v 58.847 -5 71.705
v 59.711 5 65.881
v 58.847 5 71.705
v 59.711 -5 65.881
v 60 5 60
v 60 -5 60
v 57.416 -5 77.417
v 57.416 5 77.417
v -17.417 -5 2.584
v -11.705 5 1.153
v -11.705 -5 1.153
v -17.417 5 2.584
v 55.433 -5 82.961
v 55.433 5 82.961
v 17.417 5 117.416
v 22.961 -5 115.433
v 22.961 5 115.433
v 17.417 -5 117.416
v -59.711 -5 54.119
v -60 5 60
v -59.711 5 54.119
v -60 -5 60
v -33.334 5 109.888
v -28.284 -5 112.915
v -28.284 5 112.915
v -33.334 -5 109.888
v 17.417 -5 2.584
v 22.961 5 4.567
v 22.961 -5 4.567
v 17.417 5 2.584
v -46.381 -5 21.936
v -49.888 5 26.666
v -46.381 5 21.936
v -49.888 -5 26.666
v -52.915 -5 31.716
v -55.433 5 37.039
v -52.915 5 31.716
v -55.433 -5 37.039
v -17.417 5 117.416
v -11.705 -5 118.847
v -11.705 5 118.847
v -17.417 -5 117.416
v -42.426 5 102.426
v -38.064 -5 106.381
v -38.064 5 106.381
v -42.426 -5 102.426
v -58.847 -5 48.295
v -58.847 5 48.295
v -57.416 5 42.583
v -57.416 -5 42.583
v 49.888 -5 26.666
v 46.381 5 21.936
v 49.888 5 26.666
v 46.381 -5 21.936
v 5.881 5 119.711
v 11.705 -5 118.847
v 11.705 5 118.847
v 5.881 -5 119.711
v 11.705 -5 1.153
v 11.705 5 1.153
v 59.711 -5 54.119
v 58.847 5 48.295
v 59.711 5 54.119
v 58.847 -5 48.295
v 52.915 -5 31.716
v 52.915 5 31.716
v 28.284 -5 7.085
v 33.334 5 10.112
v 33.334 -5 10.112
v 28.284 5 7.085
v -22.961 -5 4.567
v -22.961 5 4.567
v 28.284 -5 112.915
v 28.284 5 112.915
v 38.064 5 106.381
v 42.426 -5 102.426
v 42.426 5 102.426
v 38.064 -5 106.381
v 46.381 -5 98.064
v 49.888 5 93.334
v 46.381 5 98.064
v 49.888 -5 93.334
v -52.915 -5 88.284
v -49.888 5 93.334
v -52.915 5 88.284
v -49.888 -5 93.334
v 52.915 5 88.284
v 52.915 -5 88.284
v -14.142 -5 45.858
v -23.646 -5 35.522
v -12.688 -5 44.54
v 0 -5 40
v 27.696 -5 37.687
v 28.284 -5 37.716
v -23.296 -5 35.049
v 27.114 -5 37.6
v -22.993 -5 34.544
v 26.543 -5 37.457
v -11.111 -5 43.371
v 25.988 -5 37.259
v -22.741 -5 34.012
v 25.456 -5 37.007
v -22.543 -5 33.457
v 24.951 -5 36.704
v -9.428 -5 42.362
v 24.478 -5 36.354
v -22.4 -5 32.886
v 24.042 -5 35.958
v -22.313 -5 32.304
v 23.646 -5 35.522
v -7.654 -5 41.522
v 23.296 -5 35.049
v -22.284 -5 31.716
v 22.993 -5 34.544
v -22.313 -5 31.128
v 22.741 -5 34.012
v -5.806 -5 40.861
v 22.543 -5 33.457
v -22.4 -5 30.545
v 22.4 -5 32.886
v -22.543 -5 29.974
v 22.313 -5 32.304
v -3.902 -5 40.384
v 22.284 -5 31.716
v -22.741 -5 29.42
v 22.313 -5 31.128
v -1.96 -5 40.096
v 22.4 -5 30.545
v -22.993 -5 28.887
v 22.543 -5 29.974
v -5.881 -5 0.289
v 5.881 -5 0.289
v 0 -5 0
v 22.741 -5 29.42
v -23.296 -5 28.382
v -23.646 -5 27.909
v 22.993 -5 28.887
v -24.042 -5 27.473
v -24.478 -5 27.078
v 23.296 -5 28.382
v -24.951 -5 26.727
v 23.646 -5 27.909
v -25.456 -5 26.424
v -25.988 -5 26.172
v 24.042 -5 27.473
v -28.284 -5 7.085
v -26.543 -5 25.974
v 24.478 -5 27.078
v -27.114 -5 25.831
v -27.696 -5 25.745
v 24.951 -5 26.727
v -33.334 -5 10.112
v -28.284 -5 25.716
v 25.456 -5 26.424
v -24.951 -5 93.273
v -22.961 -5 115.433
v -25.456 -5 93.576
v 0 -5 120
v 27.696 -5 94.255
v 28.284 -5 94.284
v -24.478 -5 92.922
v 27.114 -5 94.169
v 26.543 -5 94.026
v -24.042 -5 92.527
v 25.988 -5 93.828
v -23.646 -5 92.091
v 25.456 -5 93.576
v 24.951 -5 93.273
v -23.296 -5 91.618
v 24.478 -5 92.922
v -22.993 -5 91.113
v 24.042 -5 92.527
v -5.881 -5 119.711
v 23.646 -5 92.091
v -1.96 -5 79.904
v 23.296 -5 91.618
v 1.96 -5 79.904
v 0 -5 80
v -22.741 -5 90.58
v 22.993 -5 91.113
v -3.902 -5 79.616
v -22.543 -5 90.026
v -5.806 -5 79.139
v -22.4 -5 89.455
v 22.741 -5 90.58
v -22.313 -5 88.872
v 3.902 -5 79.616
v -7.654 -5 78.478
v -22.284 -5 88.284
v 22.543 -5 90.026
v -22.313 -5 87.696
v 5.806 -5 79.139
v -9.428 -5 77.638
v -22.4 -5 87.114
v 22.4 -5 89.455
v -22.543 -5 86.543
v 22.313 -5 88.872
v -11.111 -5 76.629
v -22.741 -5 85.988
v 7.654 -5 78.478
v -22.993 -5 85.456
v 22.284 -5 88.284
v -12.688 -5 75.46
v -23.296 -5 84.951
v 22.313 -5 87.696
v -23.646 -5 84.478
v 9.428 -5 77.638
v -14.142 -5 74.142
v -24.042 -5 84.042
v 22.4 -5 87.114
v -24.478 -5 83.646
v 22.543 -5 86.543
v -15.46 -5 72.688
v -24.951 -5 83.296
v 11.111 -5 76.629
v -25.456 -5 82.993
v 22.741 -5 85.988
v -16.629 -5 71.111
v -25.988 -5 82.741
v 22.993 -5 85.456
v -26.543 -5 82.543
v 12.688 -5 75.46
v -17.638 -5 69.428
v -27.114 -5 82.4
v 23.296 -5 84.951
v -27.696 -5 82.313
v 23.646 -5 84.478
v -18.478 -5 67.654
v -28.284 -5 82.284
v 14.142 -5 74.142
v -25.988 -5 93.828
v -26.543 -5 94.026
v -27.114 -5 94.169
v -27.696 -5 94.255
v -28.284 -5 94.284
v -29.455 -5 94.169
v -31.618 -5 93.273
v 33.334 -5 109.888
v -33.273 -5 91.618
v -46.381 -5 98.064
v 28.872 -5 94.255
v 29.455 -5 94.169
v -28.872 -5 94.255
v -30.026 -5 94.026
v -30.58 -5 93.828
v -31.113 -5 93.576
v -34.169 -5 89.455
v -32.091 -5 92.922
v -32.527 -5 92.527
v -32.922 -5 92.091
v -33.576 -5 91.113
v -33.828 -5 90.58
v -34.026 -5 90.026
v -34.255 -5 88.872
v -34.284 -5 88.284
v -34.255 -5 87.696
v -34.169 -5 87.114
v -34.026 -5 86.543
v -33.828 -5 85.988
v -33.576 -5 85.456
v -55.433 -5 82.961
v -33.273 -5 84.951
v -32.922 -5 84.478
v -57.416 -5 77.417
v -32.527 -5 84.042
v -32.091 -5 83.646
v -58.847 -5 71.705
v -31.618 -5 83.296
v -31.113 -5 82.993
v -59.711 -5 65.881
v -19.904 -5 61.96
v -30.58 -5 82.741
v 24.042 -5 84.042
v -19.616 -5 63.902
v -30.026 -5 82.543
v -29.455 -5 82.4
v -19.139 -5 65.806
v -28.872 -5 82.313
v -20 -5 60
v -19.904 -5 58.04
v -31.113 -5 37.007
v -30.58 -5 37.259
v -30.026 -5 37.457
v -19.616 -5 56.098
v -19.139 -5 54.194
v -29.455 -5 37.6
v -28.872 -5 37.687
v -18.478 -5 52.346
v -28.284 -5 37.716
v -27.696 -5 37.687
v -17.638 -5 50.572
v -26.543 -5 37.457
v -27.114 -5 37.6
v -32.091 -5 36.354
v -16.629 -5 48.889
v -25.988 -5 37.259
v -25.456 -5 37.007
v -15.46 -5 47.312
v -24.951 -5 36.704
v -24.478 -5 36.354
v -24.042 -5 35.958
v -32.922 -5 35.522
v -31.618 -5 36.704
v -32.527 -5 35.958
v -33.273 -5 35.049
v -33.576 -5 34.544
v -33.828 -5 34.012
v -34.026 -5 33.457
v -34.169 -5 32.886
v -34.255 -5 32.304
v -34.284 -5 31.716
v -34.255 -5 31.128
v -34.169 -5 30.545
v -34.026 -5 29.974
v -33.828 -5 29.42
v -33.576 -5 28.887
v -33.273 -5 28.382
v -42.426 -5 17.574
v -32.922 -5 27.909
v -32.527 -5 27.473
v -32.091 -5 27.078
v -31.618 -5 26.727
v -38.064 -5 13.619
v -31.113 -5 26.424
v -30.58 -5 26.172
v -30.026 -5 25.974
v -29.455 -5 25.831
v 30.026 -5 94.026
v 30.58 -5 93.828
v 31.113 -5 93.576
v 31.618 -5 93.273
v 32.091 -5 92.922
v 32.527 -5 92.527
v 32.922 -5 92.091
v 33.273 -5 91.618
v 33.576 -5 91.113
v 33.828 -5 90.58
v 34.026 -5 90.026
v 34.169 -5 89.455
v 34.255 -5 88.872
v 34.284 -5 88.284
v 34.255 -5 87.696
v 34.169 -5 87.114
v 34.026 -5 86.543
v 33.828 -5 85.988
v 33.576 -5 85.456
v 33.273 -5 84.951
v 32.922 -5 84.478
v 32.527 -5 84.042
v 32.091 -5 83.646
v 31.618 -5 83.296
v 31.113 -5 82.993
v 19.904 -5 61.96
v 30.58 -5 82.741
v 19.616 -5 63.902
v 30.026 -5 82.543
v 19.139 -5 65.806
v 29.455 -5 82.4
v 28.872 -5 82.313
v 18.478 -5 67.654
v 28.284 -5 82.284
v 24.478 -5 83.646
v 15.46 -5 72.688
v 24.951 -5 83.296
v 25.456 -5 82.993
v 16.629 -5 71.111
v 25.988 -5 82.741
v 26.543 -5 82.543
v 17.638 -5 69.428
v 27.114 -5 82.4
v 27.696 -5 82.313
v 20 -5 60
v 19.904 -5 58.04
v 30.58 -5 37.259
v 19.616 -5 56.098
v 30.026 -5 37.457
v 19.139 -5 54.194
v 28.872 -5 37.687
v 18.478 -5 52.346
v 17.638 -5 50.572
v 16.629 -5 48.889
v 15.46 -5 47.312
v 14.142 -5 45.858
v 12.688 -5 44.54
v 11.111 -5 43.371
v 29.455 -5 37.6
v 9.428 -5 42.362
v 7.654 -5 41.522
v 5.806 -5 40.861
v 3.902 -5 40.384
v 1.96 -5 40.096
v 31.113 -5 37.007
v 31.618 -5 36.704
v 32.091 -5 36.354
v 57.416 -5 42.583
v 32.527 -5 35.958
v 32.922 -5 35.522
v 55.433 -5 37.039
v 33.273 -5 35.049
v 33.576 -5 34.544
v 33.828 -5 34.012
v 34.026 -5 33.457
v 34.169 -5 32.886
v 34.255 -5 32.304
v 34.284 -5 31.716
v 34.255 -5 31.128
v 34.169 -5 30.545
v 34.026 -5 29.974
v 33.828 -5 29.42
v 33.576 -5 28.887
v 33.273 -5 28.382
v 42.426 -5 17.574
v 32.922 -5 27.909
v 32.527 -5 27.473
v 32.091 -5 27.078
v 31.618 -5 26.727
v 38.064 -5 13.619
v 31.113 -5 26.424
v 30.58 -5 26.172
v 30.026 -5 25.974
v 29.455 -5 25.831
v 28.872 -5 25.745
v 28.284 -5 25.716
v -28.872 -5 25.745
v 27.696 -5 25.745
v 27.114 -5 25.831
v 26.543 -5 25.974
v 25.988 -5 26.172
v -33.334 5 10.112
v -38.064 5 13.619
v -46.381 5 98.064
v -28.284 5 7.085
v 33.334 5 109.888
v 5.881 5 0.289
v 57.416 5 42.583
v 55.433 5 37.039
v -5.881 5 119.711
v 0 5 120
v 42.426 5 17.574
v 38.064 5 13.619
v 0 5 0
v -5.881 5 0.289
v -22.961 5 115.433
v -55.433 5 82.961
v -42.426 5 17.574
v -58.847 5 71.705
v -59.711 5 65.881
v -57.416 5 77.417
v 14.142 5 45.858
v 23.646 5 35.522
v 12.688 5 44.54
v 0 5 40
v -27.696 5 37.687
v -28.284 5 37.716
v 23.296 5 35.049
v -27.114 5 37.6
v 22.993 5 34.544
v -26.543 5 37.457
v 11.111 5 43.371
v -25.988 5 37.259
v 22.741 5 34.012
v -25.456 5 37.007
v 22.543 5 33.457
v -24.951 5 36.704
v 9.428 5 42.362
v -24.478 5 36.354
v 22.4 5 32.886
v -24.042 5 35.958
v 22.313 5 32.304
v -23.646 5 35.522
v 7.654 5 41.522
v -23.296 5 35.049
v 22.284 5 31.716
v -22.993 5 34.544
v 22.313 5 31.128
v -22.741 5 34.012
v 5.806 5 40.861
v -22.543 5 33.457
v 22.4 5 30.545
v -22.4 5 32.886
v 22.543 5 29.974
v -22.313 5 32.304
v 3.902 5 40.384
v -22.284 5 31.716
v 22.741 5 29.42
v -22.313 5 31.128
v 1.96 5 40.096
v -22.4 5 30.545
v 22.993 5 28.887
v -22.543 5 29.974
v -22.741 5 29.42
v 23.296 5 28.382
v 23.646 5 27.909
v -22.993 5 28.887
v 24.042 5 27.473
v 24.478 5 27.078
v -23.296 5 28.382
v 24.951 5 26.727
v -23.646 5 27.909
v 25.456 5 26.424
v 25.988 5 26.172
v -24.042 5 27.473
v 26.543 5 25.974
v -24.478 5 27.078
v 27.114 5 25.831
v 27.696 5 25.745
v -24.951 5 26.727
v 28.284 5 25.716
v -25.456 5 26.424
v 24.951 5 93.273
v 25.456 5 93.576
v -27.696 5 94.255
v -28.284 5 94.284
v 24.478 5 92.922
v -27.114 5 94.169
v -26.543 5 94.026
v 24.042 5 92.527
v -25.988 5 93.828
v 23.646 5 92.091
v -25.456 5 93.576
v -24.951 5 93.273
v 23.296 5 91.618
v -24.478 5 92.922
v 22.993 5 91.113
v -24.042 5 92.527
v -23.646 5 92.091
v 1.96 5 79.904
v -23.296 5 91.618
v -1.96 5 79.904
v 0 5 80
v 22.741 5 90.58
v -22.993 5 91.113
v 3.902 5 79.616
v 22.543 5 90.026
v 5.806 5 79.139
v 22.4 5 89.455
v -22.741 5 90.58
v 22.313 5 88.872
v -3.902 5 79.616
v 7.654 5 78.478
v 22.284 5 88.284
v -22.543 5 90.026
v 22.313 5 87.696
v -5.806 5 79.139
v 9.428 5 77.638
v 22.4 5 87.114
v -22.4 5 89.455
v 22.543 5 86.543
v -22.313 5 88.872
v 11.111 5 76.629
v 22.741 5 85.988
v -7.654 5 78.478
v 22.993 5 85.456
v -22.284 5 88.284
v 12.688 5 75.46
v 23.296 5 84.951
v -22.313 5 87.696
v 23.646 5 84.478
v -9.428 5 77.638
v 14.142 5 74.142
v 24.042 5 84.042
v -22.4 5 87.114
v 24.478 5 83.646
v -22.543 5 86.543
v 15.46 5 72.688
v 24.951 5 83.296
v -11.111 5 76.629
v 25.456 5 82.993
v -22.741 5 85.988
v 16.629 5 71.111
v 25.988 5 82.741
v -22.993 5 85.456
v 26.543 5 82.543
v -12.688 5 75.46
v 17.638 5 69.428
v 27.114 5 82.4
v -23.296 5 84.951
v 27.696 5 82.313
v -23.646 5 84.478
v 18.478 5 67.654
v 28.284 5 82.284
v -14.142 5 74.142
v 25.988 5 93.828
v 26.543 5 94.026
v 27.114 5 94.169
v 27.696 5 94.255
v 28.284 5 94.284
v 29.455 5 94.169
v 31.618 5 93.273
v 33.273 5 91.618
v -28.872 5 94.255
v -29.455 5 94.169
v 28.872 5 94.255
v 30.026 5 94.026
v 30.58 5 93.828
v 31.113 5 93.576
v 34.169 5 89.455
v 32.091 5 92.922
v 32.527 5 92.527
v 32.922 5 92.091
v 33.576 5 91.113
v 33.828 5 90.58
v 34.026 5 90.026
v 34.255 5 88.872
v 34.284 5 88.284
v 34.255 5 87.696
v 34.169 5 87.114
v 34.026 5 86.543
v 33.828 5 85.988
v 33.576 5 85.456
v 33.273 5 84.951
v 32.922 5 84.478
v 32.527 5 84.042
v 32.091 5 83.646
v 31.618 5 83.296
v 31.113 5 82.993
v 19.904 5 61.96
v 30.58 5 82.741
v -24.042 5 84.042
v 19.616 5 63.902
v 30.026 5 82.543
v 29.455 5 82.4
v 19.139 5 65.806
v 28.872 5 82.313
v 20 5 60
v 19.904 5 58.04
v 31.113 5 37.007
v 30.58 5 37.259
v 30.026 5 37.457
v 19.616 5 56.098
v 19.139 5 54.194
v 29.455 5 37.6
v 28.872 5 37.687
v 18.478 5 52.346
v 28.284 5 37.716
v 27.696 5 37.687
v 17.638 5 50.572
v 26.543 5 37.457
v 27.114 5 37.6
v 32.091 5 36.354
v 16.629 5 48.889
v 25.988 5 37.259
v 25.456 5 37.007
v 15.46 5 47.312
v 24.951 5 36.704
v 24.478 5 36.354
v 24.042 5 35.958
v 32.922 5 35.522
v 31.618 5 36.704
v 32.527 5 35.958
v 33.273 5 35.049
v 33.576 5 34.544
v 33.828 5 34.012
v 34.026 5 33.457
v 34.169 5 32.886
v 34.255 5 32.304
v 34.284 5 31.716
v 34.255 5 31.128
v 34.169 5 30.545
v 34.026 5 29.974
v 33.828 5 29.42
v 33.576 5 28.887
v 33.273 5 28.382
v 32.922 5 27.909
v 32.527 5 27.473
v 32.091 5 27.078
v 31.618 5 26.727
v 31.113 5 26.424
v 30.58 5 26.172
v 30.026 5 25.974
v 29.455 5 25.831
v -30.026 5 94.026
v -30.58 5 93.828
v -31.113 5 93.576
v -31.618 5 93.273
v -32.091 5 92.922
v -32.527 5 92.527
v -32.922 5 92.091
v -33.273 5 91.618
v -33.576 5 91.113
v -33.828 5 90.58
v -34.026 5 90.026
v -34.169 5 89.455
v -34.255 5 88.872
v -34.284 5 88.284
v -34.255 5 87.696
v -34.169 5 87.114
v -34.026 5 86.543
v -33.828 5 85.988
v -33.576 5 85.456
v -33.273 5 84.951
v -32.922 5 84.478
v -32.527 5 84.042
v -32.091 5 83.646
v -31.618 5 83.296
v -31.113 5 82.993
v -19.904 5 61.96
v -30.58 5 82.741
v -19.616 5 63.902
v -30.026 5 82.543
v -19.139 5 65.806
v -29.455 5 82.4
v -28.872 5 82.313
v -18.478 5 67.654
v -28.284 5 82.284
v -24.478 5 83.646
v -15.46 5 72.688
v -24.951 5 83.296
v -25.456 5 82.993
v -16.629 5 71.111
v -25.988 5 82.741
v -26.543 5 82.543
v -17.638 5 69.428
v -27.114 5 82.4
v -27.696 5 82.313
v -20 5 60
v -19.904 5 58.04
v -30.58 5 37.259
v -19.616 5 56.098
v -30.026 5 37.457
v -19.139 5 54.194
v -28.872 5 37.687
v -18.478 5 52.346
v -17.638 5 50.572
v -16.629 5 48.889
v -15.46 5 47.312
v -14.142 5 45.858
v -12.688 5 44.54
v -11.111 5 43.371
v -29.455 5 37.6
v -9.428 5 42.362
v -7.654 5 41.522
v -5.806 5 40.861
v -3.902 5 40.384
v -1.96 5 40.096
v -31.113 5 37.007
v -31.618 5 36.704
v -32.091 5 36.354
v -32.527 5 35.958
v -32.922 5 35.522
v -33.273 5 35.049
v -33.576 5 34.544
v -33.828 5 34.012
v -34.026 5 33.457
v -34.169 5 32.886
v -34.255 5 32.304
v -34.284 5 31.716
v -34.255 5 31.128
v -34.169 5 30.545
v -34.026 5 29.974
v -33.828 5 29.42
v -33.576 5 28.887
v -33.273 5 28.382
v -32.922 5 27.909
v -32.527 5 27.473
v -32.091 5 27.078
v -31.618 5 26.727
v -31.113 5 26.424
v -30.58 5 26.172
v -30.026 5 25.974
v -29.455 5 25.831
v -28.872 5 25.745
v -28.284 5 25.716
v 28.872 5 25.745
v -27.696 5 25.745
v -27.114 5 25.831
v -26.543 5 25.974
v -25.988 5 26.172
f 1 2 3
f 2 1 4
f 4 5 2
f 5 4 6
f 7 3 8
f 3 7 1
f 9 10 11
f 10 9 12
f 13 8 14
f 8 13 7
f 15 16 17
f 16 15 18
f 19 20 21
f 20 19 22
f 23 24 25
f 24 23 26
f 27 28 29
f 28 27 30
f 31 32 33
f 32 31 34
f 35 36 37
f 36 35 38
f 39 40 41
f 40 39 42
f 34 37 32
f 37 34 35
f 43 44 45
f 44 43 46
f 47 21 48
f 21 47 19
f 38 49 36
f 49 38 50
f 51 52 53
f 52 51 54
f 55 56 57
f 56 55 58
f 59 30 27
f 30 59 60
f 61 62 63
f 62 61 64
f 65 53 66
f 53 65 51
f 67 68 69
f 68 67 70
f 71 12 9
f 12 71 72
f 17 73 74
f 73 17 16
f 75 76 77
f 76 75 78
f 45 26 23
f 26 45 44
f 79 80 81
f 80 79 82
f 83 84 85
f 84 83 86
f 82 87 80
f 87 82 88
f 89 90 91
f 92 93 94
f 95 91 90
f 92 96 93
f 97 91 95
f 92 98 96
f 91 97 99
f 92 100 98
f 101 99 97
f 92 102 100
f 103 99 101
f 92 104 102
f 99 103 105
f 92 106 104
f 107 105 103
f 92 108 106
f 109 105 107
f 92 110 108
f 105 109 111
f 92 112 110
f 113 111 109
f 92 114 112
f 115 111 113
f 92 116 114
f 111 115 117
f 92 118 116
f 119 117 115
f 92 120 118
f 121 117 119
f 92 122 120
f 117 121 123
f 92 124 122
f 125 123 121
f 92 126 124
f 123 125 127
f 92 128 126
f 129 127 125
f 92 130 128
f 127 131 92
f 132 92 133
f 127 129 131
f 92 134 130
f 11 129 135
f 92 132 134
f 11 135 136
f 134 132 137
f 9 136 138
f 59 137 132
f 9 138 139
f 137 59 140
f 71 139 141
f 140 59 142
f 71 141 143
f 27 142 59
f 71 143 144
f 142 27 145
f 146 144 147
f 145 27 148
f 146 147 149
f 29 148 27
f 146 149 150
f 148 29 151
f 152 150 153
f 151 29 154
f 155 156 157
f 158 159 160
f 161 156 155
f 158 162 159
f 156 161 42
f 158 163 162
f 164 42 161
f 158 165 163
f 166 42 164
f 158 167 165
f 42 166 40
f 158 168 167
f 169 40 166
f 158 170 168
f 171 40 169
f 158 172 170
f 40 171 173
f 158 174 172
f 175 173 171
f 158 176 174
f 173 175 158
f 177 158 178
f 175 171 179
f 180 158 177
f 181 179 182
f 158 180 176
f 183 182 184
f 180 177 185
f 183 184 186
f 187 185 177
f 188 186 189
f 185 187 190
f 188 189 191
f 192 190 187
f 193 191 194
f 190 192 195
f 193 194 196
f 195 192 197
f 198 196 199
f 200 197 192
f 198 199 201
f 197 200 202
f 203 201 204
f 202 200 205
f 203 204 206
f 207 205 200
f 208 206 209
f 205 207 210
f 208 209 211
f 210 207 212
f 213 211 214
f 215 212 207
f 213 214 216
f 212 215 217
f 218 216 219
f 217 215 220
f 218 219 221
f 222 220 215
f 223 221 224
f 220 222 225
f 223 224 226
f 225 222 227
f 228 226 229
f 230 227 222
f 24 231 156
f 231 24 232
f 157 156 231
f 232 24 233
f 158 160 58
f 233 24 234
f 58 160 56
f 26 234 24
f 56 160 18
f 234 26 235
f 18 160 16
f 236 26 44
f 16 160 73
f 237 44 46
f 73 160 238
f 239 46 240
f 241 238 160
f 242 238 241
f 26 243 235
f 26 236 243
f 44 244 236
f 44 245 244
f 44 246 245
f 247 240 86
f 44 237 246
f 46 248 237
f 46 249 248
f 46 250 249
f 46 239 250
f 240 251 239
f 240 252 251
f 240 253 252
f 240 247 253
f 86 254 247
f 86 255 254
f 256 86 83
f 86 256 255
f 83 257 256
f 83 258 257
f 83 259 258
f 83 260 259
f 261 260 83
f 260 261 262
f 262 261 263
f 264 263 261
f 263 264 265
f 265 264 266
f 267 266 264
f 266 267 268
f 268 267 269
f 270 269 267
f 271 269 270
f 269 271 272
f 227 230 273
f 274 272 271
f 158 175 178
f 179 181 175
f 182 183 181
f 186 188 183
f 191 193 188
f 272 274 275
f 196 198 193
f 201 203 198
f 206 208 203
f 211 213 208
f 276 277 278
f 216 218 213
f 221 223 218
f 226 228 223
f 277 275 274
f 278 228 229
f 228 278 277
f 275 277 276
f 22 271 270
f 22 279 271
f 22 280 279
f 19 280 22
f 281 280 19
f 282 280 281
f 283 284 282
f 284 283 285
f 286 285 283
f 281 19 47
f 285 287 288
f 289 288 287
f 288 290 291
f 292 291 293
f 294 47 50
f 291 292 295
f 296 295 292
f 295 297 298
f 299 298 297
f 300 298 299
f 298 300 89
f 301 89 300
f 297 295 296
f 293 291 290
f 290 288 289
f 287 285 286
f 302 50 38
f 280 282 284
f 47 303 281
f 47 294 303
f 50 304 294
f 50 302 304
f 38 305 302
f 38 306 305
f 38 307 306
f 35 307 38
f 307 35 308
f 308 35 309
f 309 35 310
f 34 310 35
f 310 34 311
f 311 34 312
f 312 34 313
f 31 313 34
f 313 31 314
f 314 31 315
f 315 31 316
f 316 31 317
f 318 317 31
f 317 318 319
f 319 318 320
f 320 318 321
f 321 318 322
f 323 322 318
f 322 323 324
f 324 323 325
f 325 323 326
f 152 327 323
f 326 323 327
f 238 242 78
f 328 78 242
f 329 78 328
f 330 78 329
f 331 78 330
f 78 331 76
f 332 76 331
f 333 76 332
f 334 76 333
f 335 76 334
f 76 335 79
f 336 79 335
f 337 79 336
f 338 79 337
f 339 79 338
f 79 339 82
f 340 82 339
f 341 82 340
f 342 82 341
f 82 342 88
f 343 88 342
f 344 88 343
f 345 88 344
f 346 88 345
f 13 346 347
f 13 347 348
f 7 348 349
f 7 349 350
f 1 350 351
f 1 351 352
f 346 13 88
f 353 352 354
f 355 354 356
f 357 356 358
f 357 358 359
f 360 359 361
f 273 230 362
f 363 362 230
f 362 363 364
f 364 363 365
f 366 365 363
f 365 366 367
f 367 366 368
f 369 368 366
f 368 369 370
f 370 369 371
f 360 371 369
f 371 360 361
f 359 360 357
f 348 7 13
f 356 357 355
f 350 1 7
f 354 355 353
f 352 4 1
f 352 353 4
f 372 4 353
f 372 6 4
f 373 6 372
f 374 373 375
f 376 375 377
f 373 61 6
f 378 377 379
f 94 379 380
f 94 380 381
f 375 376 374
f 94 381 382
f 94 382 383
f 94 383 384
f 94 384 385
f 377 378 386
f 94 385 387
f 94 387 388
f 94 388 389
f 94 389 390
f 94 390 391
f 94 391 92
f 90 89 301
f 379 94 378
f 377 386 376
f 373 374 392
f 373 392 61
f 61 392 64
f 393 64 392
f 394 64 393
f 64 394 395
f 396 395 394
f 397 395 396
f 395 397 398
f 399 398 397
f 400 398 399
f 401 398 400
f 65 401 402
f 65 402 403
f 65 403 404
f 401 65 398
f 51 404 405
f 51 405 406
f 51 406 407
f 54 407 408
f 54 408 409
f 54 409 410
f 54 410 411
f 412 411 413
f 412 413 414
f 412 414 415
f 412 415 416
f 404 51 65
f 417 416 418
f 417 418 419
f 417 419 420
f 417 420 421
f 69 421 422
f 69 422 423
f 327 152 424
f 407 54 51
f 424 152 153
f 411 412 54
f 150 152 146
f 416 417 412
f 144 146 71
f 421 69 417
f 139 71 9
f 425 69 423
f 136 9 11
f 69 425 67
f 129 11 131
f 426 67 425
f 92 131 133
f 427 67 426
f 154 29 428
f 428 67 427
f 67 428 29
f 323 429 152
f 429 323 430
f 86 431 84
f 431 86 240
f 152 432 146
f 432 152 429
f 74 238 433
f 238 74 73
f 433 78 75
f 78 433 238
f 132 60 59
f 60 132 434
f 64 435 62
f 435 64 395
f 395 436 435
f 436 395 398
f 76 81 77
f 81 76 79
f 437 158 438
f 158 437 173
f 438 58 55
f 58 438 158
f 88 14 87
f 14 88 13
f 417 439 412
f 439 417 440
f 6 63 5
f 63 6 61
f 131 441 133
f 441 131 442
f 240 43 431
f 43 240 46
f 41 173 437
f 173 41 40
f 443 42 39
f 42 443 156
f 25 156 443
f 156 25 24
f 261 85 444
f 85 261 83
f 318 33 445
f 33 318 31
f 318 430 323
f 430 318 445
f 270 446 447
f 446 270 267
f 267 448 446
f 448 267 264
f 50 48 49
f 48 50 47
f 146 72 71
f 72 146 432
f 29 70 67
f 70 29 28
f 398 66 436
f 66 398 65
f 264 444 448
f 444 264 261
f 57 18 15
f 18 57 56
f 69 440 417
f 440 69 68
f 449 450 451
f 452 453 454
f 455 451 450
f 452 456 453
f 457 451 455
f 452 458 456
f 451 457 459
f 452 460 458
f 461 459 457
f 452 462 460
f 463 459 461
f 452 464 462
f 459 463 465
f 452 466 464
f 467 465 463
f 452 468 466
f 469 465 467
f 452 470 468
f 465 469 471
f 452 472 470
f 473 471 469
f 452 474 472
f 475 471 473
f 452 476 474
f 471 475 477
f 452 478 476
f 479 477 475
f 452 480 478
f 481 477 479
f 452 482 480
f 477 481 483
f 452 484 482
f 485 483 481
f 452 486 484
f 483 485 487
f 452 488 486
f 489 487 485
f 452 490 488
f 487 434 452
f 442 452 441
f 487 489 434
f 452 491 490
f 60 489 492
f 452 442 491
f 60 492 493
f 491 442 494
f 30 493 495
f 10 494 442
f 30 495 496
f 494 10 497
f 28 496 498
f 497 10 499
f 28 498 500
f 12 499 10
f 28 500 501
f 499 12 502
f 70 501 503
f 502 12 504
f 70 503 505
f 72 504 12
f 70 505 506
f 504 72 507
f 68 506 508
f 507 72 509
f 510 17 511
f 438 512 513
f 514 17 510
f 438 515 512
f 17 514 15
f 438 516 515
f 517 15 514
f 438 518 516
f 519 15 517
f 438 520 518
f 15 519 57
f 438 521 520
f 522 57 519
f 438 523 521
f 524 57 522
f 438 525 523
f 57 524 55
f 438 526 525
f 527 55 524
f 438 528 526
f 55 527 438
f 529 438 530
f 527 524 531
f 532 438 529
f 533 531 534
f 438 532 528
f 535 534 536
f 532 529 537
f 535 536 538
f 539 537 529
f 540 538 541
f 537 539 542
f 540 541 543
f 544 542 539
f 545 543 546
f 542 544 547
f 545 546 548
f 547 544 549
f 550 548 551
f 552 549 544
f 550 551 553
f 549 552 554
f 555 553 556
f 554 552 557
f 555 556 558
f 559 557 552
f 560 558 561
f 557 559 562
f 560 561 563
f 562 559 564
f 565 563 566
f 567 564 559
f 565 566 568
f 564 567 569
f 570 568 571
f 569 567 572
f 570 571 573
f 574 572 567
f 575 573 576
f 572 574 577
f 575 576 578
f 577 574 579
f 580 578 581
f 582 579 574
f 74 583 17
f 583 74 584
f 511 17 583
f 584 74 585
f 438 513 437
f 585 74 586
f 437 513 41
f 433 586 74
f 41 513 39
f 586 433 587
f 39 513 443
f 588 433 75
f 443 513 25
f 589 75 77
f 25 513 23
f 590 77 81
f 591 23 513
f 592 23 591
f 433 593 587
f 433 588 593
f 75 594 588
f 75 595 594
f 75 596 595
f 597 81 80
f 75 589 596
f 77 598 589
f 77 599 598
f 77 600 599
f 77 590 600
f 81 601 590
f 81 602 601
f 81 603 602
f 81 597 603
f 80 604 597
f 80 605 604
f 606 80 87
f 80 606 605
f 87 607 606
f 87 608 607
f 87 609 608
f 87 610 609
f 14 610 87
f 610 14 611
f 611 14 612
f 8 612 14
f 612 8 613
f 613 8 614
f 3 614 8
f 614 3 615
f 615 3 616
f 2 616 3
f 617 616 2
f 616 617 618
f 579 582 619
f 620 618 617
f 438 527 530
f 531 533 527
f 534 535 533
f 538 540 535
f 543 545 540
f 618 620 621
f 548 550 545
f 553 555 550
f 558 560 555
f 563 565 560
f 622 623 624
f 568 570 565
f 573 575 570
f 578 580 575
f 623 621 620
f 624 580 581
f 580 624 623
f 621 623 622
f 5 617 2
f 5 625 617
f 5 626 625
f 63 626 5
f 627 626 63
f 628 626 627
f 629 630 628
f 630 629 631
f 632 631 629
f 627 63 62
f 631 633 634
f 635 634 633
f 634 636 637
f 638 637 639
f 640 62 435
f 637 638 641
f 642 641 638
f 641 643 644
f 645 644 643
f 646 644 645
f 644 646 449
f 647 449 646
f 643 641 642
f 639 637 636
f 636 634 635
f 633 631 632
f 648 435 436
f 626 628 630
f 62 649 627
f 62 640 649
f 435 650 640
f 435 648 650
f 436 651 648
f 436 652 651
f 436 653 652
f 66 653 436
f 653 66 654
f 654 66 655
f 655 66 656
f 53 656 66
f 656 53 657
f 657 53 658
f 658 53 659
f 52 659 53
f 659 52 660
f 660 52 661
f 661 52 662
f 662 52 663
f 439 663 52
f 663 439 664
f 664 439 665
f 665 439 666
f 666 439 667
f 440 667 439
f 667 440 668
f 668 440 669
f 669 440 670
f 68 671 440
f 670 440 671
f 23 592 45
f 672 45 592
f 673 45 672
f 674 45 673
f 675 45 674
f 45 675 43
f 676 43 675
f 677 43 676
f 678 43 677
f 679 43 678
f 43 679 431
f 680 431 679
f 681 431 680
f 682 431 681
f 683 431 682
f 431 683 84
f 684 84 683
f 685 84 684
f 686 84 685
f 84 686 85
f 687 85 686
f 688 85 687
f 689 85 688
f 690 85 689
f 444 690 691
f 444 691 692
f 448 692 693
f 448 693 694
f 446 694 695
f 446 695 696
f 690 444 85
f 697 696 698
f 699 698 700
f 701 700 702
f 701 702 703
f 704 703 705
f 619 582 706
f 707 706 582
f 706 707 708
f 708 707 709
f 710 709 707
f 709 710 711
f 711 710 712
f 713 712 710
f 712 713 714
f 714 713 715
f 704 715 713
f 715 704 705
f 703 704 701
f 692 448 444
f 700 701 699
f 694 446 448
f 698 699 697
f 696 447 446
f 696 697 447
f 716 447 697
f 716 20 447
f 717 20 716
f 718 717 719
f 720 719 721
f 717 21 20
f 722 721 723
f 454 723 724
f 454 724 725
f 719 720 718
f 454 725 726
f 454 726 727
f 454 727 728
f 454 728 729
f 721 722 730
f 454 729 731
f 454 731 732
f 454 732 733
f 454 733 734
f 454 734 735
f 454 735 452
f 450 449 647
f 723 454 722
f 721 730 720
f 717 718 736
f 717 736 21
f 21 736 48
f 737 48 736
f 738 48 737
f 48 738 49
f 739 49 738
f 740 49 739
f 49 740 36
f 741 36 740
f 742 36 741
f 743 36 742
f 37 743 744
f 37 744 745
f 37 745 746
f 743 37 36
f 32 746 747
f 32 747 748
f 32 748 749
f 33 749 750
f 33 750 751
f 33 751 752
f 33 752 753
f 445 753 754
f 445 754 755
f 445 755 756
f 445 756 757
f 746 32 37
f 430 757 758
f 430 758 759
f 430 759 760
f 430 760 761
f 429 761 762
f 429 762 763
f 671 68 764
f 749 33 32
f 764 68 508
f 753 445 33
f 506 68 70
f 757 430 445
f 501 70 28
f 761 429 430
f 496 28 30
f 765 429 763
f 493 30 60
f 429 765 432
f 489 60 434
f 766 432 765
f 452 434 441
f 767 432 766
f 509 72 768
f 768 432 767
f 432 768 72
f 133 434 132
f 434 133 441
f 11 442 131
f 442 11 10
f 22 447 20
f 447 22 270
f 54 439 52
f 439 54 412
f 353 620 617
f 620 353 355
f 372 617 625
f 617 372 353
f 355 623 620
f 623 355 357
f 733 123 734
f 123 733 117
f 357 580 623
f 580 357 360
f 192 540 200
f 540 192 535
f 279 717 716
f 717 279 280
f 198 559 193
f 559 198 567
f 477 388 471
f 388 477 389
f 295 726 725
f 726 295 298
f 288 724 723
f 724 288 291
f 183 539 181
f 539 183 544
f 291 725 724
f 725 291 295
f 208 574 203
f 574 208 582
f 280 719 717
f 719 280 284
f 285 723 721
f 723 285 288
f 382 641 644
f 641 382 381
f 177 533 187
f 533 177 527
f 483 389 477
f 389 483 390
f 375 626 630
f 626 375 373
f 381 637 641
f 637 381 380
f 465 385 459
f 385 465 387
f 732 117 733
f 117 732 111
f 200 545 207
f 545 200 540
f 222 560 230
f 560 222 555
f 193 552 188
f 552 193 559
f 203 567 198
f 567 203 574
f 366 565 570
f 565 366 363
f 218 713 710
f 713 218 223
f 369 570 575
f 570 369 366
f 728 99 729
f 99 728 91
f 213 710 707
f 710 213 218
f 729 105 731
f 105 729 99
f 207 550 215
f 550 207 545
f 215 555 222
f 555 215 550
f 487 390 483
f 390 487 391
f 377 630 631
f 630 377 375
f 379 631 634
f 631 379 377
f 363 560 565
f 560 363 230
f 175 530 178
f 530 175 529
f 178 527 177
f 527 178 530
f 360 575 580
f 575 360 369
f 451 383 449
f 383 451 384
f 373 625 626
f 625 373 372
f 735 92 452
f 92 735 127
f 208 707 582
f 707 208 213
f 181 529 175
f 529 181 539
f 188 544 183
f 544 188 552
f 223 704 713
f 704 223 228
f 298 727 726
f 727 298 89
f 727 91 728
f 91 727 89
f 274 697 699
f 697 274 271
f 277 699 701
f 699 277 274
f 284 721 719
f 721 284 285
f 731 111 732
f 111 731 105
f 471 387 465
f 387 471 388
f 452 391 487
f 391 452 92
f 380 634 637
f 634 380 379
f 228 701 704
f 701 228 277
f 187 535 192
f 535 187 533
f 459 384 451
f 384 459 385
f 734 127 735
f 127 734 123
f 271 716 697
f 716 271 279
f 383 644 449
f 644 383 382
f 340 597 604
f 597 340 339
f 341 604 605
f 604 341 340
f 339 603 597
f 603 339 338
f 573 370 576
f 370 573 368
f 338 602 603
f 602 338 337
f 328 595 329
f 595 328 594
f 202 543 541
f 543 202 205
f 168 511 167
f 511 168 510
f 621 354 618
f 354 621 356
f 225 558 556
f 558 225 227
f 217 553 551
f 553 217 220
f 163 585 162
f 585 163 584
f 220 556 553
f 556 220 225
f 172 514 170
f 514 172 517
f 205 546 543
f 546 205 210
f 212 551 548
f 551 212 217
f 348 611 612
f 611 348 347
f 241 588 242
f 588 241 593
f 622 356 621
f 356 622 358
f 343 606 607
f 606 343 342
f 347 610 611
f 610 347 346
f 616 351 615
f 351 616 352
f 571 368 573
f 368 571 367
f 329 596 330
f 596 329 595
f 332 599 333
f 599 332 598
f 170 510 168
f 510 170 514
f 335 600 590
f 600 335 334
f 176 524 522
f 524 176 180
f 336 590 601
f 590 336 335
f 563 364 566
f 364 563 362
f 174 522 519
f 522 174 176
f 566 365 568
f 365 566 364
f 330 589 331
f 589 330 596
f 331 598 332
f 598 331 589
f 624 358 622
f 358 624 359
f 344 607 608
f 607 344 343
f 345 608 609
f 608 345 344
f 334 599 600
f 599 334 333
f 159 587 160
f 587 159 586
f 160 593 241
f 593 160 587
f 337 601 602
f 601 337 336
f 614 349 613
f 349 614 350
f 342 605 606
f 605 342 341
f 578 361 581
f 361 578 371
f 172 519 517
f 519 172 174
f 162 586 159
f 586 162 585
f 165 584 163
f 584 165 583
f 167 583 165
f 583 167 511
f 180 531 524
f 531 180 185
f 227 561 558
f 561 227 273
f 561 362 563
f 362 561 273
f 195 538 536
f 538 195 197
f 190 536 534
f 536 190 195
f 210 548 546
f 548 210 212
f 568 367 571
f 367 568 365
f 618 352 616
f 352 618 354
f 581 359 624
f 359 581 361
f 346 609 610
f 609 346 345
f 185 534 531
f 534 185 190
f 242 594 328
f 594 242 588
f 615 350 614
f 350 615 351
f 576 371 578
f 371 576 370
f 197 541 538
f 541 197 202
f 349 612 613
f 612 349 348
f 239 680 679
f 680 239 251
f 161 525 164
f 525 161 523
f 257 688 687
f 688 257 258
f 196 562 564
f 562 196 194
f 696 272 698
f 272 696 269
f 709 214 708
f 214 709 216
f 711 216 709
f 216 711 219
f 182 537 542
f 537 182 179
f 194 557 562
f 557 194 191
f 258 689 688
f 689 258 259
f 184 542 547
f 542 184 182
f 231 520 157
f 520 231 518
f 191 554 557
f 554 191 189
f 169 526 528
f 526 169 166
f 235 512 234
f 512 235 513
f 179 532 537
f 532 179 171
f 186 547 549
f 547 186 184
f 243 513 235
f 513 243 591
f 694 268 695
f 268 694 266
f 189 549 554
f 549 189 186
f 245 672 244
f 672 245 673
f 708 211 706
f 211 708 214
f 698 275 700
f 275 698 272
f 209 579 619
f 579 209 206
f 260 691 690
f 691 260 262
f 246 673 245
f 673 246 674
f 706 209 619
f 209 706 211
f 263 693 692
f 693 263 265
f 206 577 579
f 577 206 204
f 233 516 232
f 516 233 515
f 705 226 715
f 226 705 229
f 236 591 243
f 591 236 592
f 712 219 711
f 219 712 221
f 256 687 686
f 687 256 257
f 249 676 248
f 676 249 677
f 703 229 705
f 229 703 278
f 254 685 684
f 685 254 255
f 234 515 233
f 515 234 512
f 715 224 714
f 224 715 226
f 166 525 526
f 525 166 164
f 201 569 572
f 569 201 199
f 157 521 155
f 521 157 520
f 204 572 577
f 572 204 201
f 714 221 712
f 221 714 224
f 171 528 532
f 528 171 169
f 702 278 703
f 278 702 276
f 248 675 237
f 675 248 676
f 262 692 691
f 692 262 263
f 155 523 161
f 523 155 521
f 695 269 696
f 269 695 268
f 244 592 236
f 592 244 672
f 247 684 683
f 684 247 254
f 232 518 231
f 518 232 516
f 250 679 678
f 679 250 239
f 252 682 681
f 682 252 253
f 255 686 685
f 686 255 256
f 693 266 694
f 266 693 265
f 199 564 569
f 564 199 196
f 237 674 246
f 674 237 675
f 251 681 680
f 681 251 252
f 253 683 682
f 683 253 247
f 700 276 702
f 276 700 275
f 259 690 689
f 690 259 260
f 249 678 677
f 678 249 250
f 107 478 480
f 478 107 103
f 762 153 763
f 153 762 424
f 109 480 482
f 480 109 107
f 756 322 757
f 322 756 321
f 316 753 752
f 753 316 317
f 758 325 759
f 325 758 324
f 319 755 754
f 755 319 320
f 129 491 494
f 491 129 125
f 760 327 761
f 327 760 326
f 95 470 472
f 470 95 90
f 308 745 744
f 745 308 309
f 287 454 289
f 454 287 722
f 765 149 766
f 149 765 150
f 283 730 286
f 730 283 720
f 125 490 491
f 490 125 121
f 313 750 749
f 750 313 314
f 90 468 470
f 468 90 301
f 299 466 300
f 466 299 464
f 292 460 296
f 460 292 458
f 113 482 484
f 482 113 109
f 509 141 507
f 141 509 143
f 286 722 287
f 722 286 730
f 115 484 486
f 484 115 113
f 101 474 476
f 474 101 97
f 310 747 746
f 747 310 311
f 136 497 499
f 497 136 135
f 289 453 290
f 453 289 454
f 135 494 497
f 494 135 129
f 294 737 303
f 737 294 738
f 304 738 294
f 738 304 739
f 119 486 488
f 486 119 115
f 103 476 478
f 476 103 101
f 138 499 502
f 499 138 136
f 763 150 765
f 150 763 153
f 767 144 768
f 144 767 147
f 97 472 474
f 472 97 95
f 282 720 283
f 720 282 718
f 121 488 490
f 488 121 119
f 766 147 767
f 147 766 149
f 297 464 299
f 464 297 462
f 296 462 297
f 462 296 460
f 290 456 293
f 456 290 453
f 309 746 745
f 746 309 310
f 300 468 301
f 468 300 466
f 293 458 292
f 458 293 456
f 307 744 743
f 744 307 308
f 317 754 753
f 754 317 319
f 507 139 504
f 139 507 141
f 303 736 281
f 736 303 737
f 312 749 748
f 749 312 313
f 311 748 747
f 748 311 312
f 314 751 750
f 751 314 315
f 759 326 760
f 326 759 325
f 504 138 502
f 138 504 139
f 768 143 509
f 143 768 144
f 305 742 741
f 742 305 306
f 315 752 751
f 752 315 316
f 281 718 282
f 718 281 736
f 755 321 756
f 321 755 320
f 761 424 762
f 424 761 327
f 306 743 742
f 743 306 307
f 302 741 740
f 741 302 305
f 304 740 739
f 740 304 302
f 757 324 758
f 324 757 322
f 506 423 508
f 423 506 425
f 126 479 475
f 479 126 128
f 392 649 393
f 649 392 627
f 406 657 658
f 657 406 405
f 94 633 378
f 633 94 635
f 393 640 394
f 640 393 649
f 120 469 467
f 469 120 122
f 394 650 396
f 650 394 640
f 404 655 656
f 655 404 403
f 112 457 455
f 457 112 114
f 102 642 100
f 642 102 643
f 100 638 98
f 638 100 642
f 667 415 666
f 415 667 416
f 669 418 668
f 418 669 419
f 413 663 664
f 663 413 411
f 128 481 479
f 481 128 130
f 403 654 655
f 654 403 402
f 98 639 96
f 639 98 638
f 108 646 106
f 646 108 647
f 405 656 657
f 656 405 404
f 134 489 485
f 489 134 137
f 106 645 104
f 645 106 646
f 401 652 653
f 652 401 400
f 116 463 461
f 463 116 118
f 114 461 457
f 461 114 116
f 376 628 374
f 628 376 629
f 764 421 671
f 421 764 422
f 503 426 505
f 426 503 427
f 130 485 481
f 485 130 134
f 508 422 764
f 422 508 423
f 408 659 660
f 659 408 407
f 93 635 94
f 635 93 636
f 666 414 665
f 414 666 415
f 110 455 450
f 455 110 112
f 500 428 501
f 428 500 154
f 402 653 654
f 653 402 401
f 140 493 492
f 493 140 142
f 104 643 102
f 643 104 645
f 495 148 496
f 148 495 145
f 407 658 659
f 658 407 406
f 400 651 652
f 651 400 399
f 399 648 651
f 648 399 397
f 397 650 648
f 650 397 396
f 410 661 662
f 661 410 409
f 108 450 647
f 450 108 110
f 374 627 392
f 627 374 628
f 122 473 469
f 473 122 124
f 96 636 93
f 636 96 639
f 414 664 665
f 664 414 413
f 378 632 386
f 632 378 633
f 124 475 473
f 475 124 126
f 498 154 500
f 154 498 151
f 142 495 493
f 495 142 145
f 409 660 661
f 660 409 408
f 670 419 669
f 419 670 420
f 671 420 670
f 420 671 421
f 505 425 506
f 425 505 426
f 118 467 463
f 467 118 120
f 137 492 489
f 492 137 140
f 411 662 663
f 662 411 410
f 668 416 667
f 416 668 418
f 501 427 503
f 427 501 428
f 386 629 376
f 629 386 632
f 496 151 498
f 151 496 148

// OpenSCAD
/* doodle-meta {"version":1,"parameters":{"outer_diameter":{"label":"Outer Diameter","description":"Diameter of the main circular flange plate","unit":"mm","feature":"outer_profile"},"thickness":{"label":"Thickness","description":"Axial thickness of the flange plate","unit":"mm","feature":"body_thickness"},"bore_diameter":{"label":"Center Bore Diameter","description":"Diameter of the central through-hole","unit":"mm","feature":"center_bore"},"bolt_hole_diameter":{"label":"Bolt Hole Diameter","description":"Diameter of each of the four peripheral bolt holes","unit":"mm","feature":"bolt_holes"},"bolt_circle_diameter":{"label":"Bolt Circle Diameter","description":"Diameter of the circle on which the four bolt holes are centered","unit":"mm","feature":"bolt_holes"}},"features":{"outer_profile":{"kind":"dimension","axis":"x","label":"Outer Diameter"},"body_thickness":{"kind":"dimension","axis":"z","label":"Thickness"},"center_bore":{"kind":"region","label":"Center Bore","min":[{"parameter":"outer_diameter","scale":-0.5,"offset":0},{"parameter":"outer_diameter","scale":-0.5,"offset":0},0],"max":[{"parameter":"outer_diameter","scale":0.5,"offset":0},{"parameter":"outer_diameter","scale":0.5,"offset":0},{"parameter":"thickness","scale":1,"offset":0}]},"bolt_holes":{"kind":"region","label":"Bolt Holes","min":[{"parameter":"bolt_circle_diameter","scale":-0.5,"offset":0},{"parameter":"bolt_circle_diameter","scale":-0.5,"offset":0},0],"max":[{"parameter":"bolt_circle_diameter","scale":0.5,"offset":0},{"parameter":"bolt_circle_diameter","scale":0.5,"offset":0},{"parameter":"thickness","scale":1,"offset":0}]}}} */

// Top-level editable parameters (allowlist)
outer_diameter = 120.0;
thickness = 10.0;
bore_diameter = 40.0;
bolt_hole_diameter = 12.0;
bolt_circle_diameter = 80.0;

// Derived constants (not editable)
$fn = 64;
eps = 0.01;

// Module: Main flange body (positive solid)
module flange_body() {
    // The flange is a circular plate. It sits on the build plate (Z=0 to Z=thickness).
    // The front view (view_2) shows the circular profile in XZ, but since it's a flange,
    // the circular profile is actually in XY (top view) and the thickness is in Z.
    // Wait, the prompt says: "front geometry lies in XZ... top geometry lies in XY".
    // The object is a "Round flange". Usually, a flange is a disk.
    // View 2 (front) shows the circle. View 1 (top) shows a rectangle (side view of the disk).
    // This implies the "front" view is looking at the face of the flange.
    // If the front view looks down Y, and shows a circle, the circle is in the XZ plane?
    // No, standard flange orientation: The face is usually perpendicular to the axis of the pipe/shaft.
    // If the front view (looking down Y) shows a circle, the flange face is in the XZ plane.
    // This means the flange is a disk standing up like a wheel.
    // However, the "top" view (looking down Z) shows a rectangle.
    // If the flange is a disk in XZ, looking down Z would see the edge (a rectangle).
    // This matches the description: View 1 (top) is a rectangle (side profile), View 2 (front) is the circle.
    // So the flange is a disk in the XZ plane, with thickness along Y.
    
    // Let's re-read the coordinate contract carefully.
    // "front geometry lies in XZ and front through-features cut along Y"
    // "top geometry lies in XY and cuts along Z"
    // View 2 (front) has the circular outer profile and the holes.
    // Therefore, the main body is a cylinder with its axis along Y.
    // The "top" view (View 1) shows the thickness along Y? No, top view looks down Z.
    // If the cylinder axis is Y, looking down Z sees the side of the cylinder (a rectangle).
    // The width of that rectangle in the top view (X axis) corresponds to the diameter.
    // The height of that rectangle in the top view (Y axis? No, top view is XY plane).
    // In the top view (XY plane), X is width, Y is depth.
    // If the cylinder axis is Y, the extent in Y is the thickness.
    // The extent in X is the diameter.
    // The extent in Z is the diameter.
    
    // Let's check the derived sizes.
    // width_mm (X) = 120.0. This matches the outer diameter.
    // depth_mm (Y) = 18.75. This is likely the thickness.
    // height_mm (Z) = 117.32. This is close to the diameter (120).
    
    // So the object is a disk in the XZ plane, centered at origin?
    // "The part must sit on the build plate: lowest geometry at Z=0".
    // If it's a disk in XZ, it would be floating unless we shift it.
    // But a flange usually sits flat.
    // Let's reconsider the standard orientation.
    // Usually, a flange lies flat on the table.
    // If it lies flat, the face is in XY.
    // Then the Front view (looking down Y) would see the edge (rectangle).
    // The Top view (looking down Z) would see the circle.
    // BUT the prompt says:
    // View 2 (front) constrains "Outer diameter, center bore...". View 2 shows the circle.
    // View 1 (top) constrains "Flange thickness". View 1 shows a rectangle.
    // This implies the "Front" view is the face view.
    // If the Front view is the face view, the face is in XZ.
    // This means the flange is standing up.
    // To sit on the build plate (Z=0), the bottom of the circle must be at Z=0.
    // So the center of the circle is at Z = outer_diameter / 2.
    // The thickness is along Y.
    // The "Top" view (looking down Z) sees the thickness (Y) and width (X).
    // The rectangle in View 1 has width 120 (X) and height 18.75 (Y).
    // This confirms: Axis of cylinder is Y.
    // Center of cylinder is at (0, 0, outer_diameter/2).
    // Wait, if it sits on Z=0, the lowest point is Z=0.
    // The cylinder extends from Z=0 to Z=outer_diameter.
    // The Y extent is -thickness/2 to +thickness/2? Or 0 to thickness?
    // "front through-features cut along Y".
    // If the body is centered at Y=0, the cutters go along Y.
    
    // Let's build the positive body:
    // A cylinder with axis along Y.
    // Radius = outer_diameter / 2.
    // Height (along Y) = thickness.
    // Position: Centered in X and Y, but shifted in Z so bottom is at 0.
    // Center Z = outer_diameter / 2.
    
    translate([0, 0, outer_diameter / 2])
        rotate([90, 0, 0]) // Rotate Z-axis cylinder to Y-axis
            cylinder(h=thickness, r=outer_diameter/2, center=true);
}

// Module: Center bore cutter
module center_bore_cutter() {
    // Cuts along Y (axis of the flange)
    translate([0, 0, outer_diameter / 2])
        rotate([90, 0, 0])
            cylinder(h=thickness + 2*eps, d=bore_diameter, center=true);
}

// Module: Bolt hole cutter
module bolt_hole_cutter(angle_deg) {
    // Bolt holes are on a circle in the XZ plane (face of the flange)
    // Center of flange face is at (0, 0, outer_diameter/2)
    // Radius of bolt circle
    r_bolt = bolt_circle_diameter / 2;
    
    // Calculate position in XZ plane relative to flange center
    // Angle 0 is typically +X. 
    // The view shows 4 holes. Symmetric.
    // Let's place them at 45, 135, 225, 315 degrees? 
    // Or 0, 90, 180, 270?
    // The drawing shows holes at corners of a square.
    // If the square is aligned with axes, holes are at 45 deg offsets from axes?
    // Or are the holes on the axes?
    // "Top-left", "Top-right" etc.
    // If we look at the front view (XZ), "Top" is +Z, "Left" is -X.
    // So Top-Left is (-X, +Z).
    // This corresponds to angle 135 degrees (if 0 is +X, 90 is +Z).
    // Top-Right is (+X, +Z) -> 45 degrees.
    // Bottom-Right is (+X, -Z) -> -45 (315) degrees.
    // Bottom-Left is (-X, -Z) -> 225 degrees.
    
    // So the angles are 45, 135, 225, 315.
    
    // Position relative to flange center (0,0,0 in local rotated frame)
    // In the global frame, the flange center is at (0, 0, outer_diameter/2).
    // The hole is at:
    // X = r_bolt * cos(angle)
    // Z_local = r_bolt * sin(angle)
    // Global Z = outer_diameter/2 + Z_local
    
    // The cutter axis is along Y.
    
    translate([
        r_bolt * cos(angle_deg),
        0,
        outer_diameter / 2 + r_bolt * sin(angle_deg)
    ])
        rotate([90, 0, 0])
            cylinder(h=thickness + 2*eps, d=bolt_hole_diameter, center=true);
}

// Main Design
difference() {
    flange_body();
    
    center_bore_cutter();
    
    // Four bolt holes at 45, 135, 225, 315 degrees
    bolt_hole_cutter(45);
    bolt_hole_cutter(135);
    bolt_hole_cutter(225);
    bolt_hole_cutter(315);
}
